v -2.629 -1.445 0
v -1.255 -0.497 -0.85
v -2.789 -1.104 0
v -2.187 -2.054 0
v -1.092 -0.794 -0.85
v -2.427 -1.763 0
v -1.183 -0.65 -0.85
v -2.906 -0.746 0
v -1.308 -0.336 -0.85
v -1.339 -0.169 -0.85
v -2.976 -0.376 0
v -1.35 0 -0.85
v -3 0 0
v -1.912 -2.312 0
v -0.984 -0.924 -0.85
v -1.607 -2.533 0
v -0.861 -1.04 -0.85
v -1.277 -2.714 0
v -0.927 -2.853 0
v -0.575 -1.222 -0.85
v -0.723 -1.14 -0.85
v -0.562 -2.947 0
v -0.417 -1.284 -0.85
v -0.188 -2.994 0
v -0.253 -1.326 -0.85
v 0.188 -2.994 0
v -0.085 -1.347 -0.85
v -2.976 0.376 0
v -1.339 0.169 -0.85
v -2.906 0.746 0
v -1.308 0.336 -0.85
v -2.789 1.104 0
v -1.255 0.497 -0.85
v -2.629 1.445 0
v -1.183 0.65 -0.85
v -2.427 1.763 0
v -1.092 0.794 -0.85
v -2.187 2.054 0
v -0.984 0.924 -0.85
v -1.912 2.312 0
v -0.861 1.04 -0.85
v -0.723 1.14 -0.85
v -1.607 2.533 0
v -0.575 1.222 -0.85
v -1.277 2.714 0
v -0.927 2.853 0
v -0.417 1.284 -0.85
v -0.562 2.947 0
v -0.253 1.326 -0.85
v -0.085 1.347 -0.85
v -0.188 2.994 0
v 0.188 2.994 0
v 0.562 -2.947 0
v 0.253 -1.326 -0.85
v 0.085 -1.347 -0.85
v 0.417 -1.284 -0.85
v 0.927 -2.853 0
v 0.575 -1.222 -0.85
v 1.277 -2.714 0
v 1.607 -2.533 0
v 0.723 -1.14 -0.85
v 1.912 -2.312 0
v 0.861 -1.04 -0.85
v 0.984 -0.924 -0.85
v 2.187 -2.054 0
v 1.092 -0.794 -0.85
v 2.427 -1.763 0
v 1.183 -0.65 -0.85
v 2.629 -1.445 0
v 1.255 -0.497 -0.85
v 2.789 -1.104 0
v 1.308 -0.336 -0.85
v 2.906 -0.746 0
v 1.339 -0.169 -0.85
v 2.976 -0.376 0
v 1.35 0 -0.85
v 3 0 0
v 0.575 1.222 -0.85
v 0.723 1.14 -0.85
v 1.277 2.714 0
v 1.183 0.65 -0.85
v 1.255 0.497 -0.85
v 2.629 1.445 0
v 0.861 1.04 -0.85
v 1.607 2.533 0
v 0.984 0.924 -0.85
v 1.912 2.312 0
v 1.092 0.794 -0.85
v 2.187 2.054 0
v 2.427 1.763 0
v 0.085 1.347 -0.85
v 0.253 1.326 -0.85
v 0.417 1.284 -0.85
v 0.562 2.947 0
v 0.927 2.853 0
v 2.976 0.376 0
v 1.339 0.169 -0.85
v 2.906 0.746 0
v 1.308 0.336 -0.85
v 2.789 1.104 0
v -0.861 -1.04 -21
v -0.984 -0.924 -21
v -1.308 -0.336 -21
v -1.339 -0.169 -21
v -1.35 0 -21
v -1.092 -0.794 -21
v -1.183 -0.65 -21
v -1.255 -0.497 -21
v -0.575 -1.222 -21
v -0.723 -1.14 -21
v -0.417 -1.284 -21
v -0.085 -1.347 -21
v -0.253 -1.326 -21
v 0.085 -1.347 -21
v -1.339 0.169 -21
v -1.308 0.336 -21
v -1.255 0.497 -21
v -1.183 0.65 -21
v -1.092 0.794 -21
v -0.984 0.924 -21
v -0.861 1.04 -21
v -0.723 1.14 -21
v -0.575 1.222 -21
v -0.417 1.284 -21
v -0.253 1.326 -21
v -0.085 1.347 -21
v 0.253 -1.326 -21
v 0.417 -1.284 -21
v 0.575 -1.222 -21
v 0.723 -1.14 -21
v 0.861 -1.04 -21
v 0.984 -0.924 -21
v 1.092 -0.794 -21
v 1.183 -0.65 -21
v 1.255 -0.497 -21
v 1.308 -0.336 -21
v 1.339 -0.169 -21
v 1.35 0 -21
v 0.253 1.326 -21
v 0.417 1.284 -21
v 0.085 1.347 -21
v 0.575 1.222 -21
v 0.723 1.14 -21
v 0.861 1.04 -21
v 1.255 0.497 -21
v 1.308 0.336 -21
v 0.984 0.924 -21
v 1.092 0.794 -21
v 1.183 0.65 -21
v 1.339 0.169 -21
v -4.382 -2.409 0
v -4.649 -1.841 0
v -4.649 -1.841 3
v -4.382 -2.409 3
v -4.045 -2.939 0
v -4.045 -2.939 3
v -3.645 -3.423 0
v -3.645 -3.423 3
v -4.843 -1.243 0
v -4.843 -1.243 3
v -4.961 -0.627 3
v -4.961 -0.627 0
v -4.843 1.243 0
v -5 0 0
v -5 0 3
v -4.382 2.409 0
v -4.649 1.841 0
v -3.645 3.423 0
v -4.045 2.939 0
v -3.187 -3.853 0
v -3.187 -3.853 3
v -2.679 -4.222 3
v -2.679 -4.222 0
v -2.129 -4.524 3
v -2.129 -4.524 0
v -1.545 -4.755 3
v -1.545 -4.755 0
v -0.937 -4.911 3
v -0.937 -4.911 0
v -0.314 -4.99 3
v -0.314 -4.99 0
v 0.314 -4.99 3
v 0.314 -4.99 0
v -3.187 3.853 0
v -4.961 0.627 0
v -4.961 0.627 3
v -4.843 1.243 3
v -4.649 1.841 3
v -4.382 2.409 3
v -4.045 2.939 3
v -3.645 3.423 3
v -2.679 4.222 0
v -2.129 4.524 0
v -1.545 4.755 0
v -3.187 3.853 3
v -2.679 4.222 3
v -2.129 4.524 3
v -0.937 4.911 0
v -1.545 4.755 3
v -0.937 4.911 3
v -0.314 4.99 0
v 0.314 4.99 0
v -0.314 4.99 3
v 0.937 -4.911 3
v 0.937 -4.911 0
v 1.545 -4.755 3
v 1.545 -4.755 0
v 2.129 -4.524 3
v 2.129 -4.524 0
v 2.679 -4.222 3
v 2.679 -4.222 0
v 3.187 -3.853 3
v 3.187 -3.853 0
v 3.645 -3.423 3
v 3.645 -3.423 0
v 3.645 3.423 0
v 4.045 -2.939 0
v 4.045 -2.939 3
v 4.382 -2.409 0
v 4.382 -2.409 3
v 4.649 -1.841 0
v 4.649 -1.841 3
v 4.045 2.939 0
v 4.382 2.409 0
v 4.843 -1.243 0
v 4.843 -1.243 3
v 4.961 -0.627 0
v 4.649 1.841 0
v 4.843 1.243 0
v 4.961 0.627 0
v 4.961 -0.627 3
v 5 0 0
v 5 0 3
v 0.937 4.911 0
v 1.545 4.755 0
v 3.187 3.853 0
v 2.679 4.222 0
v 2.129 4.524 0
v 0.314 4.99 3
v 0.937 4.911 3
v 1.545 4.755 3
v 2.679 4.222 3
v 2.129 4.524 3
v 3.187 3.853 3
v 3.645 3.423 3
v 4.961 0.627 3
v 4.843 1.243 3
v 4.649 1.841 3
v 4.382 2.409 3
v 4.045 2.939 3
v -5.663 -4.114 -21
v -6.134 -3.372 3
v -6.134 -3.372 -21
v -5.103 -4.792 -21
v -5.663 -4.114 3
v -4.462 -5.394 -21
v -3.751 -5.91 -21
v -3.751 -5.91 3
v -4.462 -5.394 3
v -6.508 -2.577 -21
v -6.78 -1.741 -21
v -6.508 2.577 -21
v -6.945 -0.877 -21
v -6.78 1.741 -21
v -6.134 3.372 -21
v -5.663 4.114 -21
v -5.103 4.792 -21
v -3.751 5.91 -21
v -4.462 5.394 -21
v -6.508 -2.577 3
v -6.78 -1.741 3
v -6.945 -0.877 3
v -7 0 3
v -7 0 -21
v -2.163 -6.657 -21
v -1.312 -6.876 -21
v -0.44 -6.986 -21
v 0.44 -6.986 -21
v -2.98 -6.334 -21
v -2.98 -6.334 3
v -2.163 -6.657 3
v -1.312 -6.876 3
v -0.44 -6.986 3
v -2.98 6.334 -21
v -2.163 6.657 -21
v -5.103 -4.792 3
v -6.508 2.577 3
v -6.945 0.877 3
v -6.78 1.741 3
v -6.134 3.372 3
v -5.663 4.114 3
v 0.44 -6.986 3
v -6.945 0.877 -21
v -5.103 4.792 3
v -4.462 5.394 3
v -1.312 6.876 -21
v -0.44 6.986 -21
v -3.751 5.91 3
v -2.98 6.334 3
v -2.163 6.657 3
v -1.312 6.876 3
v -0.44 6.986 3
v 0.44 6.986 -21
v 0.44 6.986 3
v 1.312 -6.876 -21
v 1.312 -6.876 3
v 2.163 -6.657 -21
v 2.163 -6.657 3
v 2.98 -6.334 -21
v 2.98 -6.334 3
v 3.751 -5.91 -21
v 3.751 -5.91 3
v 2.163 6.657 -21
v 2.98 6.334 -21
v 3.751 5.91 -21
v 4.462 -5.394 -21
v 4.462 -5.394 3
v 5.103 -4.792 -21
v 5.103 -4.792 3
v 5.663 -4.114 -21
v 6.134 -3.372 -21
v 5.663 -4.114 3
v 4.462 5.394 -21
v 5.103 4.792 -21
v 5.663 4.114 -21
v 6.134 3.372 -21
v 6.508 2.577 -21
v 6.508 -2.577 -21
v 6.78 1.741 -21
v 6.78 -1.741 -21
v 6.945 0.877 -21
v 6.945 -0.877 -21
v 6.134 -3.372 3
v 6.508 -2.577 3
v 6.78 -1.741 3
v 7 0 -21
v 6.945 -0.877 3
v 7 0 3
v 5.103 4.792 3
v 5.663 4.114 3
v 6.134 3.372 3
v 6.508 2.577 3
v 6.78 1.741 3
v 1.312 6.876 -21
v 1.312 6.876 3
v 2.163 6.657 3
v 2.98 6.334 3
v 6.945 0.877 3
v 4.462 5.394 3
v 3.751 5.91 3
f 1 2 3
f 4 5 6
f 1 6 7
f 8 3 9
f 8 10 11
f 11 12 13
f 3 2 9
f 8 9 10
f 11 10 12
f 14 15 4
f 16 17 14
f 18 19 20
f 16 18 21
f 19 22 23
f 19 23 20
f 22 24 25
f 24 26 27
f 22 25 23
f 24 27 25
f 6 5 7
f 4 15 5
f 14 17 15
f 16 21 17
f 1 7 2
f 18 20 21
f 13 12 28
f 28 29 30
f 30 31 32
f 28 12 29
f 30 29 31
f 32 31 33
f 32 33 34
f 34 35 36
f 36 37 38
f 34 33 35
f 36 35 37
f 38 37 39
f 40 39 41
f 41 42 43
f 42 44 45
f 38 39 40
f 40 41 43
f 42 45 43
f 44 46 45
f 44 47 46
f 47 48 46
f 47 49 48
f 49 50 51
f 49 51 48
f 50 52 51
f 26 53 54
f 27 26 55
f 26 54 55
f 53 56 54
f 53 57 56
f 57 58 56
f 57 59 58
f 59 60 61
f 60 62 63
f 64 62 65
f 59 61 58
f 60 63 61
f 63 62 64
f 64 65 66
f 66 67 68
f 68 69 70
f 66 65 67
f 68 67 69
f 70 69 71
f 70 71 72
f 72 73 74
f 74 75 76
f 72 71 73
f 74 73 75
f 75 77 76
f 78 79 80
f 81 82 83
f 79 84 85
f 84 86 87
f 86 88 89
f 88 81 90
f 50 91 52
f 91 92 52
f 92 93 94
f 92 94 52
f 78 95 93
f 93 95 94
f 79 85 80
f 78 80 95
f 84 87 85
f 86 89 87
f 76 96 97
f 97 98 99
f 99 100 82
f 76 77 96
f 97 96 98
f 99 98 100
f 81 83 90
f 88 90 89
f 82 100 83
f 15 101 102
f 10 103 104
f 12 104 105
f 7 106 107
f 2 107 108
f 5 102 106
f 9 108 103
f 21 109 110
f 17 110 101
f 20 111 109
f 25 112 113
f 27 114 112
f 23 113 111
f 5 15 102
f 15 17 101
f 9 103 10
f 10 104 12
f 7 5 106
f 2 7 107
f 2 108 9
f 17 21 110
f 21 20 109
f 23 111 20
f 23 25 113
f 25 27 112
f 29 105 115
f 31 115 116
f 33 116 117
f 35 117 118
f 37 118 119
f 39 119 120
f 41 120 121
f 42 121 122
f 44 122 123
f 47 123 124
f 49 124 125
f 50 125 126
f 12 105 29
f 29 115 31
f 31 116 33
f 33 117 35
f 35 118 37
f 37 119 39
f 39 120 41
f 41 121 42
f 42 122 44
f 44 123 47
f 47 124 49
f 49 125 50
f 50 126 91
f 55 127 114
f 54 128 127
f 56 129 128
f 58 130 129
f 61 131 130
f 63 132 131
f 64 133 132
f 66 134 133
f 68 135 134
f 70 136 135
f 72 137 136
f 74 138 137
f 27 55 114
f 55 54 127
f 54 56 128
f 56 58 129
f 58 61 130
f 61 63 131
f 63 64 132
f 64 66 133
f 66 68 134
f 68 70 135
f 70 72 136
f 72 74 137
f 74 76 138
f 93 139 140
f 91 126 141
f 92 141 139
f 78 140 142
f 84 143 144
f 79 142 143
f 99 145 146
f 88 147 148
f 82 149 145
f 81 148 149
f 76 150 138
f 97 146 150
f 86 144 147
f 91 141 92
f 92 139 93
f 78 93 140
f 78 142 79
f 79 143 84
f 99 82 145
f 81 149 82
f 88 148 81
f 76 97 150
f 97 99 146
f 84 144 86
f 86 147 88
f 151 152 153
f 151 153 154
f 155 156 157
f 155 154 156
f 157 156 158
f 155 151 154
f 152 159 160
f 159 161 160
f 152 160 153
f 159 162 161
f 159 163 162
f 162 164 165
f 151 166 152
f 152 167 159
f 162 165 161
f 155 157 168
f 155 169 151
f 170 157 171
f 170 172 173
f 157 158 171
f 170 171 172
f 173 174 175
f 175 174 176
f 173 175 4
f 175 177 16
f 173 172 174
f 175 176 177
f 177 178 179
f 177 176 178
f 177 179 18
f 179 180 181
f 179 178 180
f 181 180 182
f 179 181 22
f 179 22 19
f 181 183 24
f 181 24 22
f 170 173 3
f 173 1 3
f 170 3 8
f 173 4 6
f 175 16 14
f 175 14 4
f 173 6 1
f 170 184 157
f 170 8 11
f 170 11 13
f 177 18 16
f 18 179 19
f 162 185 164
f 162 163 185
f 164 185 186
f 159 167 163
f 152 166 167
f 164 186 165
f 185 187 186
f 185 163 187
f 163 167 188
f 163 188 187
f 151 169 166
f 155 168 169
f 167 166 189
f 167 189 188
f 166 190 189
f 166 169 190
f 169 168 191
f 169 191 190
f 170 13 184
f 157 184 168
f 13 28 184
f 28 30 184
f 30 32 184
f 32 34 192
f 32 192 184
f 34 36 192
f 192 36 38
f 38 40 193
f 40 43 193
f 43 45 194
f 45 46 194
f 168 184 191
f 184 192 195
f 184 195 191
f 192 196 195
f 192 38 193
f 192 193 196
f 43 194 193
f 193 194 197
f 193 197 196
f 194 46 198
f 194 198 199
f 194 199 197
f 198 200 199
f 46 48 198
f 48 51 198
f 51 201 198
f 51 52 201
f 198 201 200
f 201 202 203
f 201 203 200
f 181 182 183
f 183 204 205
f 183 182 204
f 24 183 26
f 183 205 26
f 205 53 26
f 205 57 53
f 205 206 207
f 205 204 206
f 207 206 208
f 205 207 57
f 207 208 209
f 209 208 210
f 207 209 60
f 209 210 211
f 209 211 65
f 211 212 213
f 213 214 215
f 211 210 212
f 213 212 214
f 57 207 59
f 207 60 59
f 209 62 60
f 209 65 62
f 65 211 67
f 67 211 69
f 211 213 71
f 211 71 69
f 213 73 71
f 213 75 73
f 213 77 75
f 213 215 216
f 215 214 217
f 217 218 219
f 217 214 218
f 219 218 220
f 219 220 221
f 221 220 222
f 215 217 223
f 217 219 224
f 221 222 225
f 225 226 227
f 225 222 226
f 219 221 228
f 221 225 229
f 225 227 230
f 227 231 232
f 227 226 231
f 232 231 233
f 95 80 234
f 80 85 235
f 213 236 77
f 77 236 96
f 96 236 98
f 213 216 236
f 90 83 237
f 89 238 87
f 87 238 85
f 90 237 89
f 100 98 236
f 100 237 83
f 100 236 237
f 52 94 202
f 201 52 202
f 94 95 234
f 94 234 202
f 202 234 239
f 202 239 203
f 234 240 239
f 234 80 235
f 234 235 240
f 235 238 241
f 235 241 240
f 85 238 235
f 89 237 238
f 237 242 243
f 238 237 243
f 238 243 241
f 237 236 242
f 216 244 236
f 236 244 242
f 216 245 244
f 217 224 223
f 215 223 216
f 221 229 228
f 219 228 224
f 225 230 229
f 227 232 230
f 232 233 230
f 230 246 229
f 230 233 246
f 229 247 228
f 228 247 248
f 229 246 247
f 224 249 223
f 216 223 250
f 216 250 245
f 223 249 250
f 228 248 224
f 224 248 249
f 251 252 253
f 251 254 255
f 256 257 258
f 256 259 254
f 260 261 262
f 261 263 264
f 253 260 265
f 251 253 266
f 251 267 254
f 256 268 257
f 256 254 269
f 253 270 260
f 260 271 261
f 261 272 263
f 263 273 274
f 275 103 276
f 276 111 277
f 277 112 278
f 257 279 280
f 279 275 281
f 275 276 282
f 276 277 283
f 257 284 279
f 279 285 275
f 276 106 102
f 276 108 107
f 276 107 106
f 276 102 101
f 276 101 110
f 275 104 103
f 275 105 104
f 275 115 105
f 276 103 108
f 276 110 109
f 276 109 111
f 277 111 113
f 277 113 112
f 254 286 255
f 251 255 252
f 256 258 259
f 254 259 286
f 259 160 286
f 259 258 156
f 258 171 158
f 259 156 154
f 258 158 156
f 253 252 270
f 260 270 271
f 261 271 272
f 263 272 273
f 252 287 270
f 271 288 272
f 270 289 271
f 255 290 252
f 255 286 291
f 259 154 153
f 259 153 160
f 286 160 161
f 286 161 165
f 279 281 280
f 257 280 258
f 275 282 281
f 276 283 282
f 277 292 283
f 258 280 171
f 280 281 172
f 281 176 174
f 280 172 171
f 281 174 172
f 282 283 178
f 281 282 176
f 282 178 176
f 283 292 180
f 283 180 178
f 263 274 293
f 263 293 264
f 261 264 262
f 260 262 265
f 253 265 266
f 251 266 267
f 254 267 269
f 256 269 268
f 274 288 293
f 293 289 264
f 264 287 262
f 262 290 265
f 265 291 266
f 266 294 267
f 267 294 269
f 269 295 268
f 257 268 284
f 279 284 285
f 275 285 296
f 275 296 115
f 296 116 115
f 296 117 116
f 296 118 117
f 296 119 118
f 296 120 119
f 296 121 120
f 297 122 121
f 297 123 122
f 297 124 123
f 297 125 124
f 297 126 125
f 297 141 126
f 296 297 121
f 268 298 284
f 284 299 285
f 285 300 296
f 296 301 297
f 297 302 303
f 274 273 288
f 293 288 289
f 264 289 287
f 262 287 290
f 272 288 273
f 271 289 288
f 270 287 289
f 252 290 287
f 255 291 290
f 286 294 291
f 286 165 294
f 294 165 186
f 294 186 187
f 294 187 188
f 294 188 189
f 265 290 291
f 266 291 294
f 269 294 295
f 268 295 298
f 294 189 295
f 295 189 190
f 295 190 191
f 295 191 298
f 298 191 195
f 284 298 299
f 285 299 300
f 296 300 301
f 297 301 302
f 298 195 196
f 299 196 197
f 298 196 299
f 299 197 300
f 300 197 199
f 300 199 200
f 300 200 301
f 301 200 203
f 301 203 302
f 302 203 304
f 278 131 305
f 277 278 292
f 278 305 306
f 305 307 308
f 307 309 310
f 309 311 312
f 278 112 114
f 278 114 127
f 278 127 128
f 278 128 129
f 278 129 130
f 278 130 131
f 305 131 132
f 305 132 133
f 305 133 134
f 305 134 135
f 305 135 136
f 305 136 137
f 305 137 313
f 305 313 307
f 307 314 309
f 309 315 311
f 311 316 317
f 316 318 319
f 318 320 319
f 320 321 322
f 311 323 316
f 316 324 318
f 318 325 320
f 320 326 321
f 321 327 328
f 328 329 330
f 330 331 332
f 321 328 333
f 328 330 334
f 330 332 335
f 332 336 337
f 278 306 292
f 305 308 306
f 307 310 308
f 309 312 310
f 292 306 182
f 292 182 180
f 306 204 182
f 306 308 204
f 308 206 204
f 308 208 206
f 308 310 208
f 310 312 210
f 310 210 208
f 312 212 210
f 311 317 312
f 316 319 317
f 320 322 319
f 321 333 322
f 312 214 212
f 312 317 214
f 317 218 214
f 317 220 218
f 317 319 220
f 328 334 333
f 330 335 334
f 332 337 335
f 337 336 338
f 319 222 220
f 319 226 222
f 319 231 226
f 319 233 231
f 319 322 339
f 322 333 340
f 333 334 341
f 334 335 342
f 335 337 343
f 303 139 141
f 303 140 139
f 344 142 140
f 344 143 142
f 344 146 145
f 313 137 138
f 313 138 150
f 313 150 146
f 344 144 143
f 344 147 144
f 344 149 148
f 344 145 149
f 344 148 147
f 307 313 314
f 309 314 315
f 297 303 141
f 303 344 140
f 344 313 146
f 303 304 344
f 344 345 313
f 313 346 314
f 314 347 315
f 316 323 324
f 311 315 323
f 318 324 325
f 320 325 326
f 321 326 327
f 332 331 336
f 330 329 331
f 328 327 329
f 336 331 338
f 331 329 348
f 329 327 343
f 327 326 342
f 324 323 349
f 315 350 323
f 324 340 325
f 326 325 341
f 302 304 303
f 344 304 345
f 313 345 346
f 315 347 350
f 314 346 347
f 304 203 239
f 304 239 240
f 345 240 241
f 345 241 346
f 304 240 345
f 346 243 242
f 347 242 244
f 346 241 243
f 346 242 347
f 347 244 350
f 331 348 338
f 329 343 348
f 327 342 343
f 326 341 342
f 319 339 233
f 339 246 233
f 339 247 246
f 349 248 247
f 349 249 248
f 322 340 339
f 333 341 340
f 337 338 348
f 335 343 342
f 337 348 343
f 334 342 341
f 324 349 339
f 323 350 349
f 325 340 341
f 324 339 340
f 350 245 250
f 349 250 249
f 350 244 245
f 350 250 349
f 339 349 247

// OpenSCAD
$fn = 50;

difference() {
	union() {
		translate(v = [0, 0, -21.0]) {
			cylinder(h = 24, r = 7.0);
		}
	}
	union() {
		translate(v = [0, 0, 0]) {
			rotate(a = [0, 0, 0]) {
				difference() {
					union() {
						translate(v = [0, 0, -24.0]) {
							cylinder(h = 24, r = 1.0);
						}
						translate(v = [0, 0, -0.85]) {
							cylinder(h = 0.85, r1 = 1.35, r2 = 3.0);
						}
						translate(v = [0, 0, -24.0]) {
							cylinder(h = 24, r = 1.35);
						}
						translate(v = [0, 0, -24.0]) {
							cylinder(h = 24, r = 1.0);
						}
					}
					union();
				}
			}
		}
		#cylinder(h = 3, r = 5.0);
	}
}
